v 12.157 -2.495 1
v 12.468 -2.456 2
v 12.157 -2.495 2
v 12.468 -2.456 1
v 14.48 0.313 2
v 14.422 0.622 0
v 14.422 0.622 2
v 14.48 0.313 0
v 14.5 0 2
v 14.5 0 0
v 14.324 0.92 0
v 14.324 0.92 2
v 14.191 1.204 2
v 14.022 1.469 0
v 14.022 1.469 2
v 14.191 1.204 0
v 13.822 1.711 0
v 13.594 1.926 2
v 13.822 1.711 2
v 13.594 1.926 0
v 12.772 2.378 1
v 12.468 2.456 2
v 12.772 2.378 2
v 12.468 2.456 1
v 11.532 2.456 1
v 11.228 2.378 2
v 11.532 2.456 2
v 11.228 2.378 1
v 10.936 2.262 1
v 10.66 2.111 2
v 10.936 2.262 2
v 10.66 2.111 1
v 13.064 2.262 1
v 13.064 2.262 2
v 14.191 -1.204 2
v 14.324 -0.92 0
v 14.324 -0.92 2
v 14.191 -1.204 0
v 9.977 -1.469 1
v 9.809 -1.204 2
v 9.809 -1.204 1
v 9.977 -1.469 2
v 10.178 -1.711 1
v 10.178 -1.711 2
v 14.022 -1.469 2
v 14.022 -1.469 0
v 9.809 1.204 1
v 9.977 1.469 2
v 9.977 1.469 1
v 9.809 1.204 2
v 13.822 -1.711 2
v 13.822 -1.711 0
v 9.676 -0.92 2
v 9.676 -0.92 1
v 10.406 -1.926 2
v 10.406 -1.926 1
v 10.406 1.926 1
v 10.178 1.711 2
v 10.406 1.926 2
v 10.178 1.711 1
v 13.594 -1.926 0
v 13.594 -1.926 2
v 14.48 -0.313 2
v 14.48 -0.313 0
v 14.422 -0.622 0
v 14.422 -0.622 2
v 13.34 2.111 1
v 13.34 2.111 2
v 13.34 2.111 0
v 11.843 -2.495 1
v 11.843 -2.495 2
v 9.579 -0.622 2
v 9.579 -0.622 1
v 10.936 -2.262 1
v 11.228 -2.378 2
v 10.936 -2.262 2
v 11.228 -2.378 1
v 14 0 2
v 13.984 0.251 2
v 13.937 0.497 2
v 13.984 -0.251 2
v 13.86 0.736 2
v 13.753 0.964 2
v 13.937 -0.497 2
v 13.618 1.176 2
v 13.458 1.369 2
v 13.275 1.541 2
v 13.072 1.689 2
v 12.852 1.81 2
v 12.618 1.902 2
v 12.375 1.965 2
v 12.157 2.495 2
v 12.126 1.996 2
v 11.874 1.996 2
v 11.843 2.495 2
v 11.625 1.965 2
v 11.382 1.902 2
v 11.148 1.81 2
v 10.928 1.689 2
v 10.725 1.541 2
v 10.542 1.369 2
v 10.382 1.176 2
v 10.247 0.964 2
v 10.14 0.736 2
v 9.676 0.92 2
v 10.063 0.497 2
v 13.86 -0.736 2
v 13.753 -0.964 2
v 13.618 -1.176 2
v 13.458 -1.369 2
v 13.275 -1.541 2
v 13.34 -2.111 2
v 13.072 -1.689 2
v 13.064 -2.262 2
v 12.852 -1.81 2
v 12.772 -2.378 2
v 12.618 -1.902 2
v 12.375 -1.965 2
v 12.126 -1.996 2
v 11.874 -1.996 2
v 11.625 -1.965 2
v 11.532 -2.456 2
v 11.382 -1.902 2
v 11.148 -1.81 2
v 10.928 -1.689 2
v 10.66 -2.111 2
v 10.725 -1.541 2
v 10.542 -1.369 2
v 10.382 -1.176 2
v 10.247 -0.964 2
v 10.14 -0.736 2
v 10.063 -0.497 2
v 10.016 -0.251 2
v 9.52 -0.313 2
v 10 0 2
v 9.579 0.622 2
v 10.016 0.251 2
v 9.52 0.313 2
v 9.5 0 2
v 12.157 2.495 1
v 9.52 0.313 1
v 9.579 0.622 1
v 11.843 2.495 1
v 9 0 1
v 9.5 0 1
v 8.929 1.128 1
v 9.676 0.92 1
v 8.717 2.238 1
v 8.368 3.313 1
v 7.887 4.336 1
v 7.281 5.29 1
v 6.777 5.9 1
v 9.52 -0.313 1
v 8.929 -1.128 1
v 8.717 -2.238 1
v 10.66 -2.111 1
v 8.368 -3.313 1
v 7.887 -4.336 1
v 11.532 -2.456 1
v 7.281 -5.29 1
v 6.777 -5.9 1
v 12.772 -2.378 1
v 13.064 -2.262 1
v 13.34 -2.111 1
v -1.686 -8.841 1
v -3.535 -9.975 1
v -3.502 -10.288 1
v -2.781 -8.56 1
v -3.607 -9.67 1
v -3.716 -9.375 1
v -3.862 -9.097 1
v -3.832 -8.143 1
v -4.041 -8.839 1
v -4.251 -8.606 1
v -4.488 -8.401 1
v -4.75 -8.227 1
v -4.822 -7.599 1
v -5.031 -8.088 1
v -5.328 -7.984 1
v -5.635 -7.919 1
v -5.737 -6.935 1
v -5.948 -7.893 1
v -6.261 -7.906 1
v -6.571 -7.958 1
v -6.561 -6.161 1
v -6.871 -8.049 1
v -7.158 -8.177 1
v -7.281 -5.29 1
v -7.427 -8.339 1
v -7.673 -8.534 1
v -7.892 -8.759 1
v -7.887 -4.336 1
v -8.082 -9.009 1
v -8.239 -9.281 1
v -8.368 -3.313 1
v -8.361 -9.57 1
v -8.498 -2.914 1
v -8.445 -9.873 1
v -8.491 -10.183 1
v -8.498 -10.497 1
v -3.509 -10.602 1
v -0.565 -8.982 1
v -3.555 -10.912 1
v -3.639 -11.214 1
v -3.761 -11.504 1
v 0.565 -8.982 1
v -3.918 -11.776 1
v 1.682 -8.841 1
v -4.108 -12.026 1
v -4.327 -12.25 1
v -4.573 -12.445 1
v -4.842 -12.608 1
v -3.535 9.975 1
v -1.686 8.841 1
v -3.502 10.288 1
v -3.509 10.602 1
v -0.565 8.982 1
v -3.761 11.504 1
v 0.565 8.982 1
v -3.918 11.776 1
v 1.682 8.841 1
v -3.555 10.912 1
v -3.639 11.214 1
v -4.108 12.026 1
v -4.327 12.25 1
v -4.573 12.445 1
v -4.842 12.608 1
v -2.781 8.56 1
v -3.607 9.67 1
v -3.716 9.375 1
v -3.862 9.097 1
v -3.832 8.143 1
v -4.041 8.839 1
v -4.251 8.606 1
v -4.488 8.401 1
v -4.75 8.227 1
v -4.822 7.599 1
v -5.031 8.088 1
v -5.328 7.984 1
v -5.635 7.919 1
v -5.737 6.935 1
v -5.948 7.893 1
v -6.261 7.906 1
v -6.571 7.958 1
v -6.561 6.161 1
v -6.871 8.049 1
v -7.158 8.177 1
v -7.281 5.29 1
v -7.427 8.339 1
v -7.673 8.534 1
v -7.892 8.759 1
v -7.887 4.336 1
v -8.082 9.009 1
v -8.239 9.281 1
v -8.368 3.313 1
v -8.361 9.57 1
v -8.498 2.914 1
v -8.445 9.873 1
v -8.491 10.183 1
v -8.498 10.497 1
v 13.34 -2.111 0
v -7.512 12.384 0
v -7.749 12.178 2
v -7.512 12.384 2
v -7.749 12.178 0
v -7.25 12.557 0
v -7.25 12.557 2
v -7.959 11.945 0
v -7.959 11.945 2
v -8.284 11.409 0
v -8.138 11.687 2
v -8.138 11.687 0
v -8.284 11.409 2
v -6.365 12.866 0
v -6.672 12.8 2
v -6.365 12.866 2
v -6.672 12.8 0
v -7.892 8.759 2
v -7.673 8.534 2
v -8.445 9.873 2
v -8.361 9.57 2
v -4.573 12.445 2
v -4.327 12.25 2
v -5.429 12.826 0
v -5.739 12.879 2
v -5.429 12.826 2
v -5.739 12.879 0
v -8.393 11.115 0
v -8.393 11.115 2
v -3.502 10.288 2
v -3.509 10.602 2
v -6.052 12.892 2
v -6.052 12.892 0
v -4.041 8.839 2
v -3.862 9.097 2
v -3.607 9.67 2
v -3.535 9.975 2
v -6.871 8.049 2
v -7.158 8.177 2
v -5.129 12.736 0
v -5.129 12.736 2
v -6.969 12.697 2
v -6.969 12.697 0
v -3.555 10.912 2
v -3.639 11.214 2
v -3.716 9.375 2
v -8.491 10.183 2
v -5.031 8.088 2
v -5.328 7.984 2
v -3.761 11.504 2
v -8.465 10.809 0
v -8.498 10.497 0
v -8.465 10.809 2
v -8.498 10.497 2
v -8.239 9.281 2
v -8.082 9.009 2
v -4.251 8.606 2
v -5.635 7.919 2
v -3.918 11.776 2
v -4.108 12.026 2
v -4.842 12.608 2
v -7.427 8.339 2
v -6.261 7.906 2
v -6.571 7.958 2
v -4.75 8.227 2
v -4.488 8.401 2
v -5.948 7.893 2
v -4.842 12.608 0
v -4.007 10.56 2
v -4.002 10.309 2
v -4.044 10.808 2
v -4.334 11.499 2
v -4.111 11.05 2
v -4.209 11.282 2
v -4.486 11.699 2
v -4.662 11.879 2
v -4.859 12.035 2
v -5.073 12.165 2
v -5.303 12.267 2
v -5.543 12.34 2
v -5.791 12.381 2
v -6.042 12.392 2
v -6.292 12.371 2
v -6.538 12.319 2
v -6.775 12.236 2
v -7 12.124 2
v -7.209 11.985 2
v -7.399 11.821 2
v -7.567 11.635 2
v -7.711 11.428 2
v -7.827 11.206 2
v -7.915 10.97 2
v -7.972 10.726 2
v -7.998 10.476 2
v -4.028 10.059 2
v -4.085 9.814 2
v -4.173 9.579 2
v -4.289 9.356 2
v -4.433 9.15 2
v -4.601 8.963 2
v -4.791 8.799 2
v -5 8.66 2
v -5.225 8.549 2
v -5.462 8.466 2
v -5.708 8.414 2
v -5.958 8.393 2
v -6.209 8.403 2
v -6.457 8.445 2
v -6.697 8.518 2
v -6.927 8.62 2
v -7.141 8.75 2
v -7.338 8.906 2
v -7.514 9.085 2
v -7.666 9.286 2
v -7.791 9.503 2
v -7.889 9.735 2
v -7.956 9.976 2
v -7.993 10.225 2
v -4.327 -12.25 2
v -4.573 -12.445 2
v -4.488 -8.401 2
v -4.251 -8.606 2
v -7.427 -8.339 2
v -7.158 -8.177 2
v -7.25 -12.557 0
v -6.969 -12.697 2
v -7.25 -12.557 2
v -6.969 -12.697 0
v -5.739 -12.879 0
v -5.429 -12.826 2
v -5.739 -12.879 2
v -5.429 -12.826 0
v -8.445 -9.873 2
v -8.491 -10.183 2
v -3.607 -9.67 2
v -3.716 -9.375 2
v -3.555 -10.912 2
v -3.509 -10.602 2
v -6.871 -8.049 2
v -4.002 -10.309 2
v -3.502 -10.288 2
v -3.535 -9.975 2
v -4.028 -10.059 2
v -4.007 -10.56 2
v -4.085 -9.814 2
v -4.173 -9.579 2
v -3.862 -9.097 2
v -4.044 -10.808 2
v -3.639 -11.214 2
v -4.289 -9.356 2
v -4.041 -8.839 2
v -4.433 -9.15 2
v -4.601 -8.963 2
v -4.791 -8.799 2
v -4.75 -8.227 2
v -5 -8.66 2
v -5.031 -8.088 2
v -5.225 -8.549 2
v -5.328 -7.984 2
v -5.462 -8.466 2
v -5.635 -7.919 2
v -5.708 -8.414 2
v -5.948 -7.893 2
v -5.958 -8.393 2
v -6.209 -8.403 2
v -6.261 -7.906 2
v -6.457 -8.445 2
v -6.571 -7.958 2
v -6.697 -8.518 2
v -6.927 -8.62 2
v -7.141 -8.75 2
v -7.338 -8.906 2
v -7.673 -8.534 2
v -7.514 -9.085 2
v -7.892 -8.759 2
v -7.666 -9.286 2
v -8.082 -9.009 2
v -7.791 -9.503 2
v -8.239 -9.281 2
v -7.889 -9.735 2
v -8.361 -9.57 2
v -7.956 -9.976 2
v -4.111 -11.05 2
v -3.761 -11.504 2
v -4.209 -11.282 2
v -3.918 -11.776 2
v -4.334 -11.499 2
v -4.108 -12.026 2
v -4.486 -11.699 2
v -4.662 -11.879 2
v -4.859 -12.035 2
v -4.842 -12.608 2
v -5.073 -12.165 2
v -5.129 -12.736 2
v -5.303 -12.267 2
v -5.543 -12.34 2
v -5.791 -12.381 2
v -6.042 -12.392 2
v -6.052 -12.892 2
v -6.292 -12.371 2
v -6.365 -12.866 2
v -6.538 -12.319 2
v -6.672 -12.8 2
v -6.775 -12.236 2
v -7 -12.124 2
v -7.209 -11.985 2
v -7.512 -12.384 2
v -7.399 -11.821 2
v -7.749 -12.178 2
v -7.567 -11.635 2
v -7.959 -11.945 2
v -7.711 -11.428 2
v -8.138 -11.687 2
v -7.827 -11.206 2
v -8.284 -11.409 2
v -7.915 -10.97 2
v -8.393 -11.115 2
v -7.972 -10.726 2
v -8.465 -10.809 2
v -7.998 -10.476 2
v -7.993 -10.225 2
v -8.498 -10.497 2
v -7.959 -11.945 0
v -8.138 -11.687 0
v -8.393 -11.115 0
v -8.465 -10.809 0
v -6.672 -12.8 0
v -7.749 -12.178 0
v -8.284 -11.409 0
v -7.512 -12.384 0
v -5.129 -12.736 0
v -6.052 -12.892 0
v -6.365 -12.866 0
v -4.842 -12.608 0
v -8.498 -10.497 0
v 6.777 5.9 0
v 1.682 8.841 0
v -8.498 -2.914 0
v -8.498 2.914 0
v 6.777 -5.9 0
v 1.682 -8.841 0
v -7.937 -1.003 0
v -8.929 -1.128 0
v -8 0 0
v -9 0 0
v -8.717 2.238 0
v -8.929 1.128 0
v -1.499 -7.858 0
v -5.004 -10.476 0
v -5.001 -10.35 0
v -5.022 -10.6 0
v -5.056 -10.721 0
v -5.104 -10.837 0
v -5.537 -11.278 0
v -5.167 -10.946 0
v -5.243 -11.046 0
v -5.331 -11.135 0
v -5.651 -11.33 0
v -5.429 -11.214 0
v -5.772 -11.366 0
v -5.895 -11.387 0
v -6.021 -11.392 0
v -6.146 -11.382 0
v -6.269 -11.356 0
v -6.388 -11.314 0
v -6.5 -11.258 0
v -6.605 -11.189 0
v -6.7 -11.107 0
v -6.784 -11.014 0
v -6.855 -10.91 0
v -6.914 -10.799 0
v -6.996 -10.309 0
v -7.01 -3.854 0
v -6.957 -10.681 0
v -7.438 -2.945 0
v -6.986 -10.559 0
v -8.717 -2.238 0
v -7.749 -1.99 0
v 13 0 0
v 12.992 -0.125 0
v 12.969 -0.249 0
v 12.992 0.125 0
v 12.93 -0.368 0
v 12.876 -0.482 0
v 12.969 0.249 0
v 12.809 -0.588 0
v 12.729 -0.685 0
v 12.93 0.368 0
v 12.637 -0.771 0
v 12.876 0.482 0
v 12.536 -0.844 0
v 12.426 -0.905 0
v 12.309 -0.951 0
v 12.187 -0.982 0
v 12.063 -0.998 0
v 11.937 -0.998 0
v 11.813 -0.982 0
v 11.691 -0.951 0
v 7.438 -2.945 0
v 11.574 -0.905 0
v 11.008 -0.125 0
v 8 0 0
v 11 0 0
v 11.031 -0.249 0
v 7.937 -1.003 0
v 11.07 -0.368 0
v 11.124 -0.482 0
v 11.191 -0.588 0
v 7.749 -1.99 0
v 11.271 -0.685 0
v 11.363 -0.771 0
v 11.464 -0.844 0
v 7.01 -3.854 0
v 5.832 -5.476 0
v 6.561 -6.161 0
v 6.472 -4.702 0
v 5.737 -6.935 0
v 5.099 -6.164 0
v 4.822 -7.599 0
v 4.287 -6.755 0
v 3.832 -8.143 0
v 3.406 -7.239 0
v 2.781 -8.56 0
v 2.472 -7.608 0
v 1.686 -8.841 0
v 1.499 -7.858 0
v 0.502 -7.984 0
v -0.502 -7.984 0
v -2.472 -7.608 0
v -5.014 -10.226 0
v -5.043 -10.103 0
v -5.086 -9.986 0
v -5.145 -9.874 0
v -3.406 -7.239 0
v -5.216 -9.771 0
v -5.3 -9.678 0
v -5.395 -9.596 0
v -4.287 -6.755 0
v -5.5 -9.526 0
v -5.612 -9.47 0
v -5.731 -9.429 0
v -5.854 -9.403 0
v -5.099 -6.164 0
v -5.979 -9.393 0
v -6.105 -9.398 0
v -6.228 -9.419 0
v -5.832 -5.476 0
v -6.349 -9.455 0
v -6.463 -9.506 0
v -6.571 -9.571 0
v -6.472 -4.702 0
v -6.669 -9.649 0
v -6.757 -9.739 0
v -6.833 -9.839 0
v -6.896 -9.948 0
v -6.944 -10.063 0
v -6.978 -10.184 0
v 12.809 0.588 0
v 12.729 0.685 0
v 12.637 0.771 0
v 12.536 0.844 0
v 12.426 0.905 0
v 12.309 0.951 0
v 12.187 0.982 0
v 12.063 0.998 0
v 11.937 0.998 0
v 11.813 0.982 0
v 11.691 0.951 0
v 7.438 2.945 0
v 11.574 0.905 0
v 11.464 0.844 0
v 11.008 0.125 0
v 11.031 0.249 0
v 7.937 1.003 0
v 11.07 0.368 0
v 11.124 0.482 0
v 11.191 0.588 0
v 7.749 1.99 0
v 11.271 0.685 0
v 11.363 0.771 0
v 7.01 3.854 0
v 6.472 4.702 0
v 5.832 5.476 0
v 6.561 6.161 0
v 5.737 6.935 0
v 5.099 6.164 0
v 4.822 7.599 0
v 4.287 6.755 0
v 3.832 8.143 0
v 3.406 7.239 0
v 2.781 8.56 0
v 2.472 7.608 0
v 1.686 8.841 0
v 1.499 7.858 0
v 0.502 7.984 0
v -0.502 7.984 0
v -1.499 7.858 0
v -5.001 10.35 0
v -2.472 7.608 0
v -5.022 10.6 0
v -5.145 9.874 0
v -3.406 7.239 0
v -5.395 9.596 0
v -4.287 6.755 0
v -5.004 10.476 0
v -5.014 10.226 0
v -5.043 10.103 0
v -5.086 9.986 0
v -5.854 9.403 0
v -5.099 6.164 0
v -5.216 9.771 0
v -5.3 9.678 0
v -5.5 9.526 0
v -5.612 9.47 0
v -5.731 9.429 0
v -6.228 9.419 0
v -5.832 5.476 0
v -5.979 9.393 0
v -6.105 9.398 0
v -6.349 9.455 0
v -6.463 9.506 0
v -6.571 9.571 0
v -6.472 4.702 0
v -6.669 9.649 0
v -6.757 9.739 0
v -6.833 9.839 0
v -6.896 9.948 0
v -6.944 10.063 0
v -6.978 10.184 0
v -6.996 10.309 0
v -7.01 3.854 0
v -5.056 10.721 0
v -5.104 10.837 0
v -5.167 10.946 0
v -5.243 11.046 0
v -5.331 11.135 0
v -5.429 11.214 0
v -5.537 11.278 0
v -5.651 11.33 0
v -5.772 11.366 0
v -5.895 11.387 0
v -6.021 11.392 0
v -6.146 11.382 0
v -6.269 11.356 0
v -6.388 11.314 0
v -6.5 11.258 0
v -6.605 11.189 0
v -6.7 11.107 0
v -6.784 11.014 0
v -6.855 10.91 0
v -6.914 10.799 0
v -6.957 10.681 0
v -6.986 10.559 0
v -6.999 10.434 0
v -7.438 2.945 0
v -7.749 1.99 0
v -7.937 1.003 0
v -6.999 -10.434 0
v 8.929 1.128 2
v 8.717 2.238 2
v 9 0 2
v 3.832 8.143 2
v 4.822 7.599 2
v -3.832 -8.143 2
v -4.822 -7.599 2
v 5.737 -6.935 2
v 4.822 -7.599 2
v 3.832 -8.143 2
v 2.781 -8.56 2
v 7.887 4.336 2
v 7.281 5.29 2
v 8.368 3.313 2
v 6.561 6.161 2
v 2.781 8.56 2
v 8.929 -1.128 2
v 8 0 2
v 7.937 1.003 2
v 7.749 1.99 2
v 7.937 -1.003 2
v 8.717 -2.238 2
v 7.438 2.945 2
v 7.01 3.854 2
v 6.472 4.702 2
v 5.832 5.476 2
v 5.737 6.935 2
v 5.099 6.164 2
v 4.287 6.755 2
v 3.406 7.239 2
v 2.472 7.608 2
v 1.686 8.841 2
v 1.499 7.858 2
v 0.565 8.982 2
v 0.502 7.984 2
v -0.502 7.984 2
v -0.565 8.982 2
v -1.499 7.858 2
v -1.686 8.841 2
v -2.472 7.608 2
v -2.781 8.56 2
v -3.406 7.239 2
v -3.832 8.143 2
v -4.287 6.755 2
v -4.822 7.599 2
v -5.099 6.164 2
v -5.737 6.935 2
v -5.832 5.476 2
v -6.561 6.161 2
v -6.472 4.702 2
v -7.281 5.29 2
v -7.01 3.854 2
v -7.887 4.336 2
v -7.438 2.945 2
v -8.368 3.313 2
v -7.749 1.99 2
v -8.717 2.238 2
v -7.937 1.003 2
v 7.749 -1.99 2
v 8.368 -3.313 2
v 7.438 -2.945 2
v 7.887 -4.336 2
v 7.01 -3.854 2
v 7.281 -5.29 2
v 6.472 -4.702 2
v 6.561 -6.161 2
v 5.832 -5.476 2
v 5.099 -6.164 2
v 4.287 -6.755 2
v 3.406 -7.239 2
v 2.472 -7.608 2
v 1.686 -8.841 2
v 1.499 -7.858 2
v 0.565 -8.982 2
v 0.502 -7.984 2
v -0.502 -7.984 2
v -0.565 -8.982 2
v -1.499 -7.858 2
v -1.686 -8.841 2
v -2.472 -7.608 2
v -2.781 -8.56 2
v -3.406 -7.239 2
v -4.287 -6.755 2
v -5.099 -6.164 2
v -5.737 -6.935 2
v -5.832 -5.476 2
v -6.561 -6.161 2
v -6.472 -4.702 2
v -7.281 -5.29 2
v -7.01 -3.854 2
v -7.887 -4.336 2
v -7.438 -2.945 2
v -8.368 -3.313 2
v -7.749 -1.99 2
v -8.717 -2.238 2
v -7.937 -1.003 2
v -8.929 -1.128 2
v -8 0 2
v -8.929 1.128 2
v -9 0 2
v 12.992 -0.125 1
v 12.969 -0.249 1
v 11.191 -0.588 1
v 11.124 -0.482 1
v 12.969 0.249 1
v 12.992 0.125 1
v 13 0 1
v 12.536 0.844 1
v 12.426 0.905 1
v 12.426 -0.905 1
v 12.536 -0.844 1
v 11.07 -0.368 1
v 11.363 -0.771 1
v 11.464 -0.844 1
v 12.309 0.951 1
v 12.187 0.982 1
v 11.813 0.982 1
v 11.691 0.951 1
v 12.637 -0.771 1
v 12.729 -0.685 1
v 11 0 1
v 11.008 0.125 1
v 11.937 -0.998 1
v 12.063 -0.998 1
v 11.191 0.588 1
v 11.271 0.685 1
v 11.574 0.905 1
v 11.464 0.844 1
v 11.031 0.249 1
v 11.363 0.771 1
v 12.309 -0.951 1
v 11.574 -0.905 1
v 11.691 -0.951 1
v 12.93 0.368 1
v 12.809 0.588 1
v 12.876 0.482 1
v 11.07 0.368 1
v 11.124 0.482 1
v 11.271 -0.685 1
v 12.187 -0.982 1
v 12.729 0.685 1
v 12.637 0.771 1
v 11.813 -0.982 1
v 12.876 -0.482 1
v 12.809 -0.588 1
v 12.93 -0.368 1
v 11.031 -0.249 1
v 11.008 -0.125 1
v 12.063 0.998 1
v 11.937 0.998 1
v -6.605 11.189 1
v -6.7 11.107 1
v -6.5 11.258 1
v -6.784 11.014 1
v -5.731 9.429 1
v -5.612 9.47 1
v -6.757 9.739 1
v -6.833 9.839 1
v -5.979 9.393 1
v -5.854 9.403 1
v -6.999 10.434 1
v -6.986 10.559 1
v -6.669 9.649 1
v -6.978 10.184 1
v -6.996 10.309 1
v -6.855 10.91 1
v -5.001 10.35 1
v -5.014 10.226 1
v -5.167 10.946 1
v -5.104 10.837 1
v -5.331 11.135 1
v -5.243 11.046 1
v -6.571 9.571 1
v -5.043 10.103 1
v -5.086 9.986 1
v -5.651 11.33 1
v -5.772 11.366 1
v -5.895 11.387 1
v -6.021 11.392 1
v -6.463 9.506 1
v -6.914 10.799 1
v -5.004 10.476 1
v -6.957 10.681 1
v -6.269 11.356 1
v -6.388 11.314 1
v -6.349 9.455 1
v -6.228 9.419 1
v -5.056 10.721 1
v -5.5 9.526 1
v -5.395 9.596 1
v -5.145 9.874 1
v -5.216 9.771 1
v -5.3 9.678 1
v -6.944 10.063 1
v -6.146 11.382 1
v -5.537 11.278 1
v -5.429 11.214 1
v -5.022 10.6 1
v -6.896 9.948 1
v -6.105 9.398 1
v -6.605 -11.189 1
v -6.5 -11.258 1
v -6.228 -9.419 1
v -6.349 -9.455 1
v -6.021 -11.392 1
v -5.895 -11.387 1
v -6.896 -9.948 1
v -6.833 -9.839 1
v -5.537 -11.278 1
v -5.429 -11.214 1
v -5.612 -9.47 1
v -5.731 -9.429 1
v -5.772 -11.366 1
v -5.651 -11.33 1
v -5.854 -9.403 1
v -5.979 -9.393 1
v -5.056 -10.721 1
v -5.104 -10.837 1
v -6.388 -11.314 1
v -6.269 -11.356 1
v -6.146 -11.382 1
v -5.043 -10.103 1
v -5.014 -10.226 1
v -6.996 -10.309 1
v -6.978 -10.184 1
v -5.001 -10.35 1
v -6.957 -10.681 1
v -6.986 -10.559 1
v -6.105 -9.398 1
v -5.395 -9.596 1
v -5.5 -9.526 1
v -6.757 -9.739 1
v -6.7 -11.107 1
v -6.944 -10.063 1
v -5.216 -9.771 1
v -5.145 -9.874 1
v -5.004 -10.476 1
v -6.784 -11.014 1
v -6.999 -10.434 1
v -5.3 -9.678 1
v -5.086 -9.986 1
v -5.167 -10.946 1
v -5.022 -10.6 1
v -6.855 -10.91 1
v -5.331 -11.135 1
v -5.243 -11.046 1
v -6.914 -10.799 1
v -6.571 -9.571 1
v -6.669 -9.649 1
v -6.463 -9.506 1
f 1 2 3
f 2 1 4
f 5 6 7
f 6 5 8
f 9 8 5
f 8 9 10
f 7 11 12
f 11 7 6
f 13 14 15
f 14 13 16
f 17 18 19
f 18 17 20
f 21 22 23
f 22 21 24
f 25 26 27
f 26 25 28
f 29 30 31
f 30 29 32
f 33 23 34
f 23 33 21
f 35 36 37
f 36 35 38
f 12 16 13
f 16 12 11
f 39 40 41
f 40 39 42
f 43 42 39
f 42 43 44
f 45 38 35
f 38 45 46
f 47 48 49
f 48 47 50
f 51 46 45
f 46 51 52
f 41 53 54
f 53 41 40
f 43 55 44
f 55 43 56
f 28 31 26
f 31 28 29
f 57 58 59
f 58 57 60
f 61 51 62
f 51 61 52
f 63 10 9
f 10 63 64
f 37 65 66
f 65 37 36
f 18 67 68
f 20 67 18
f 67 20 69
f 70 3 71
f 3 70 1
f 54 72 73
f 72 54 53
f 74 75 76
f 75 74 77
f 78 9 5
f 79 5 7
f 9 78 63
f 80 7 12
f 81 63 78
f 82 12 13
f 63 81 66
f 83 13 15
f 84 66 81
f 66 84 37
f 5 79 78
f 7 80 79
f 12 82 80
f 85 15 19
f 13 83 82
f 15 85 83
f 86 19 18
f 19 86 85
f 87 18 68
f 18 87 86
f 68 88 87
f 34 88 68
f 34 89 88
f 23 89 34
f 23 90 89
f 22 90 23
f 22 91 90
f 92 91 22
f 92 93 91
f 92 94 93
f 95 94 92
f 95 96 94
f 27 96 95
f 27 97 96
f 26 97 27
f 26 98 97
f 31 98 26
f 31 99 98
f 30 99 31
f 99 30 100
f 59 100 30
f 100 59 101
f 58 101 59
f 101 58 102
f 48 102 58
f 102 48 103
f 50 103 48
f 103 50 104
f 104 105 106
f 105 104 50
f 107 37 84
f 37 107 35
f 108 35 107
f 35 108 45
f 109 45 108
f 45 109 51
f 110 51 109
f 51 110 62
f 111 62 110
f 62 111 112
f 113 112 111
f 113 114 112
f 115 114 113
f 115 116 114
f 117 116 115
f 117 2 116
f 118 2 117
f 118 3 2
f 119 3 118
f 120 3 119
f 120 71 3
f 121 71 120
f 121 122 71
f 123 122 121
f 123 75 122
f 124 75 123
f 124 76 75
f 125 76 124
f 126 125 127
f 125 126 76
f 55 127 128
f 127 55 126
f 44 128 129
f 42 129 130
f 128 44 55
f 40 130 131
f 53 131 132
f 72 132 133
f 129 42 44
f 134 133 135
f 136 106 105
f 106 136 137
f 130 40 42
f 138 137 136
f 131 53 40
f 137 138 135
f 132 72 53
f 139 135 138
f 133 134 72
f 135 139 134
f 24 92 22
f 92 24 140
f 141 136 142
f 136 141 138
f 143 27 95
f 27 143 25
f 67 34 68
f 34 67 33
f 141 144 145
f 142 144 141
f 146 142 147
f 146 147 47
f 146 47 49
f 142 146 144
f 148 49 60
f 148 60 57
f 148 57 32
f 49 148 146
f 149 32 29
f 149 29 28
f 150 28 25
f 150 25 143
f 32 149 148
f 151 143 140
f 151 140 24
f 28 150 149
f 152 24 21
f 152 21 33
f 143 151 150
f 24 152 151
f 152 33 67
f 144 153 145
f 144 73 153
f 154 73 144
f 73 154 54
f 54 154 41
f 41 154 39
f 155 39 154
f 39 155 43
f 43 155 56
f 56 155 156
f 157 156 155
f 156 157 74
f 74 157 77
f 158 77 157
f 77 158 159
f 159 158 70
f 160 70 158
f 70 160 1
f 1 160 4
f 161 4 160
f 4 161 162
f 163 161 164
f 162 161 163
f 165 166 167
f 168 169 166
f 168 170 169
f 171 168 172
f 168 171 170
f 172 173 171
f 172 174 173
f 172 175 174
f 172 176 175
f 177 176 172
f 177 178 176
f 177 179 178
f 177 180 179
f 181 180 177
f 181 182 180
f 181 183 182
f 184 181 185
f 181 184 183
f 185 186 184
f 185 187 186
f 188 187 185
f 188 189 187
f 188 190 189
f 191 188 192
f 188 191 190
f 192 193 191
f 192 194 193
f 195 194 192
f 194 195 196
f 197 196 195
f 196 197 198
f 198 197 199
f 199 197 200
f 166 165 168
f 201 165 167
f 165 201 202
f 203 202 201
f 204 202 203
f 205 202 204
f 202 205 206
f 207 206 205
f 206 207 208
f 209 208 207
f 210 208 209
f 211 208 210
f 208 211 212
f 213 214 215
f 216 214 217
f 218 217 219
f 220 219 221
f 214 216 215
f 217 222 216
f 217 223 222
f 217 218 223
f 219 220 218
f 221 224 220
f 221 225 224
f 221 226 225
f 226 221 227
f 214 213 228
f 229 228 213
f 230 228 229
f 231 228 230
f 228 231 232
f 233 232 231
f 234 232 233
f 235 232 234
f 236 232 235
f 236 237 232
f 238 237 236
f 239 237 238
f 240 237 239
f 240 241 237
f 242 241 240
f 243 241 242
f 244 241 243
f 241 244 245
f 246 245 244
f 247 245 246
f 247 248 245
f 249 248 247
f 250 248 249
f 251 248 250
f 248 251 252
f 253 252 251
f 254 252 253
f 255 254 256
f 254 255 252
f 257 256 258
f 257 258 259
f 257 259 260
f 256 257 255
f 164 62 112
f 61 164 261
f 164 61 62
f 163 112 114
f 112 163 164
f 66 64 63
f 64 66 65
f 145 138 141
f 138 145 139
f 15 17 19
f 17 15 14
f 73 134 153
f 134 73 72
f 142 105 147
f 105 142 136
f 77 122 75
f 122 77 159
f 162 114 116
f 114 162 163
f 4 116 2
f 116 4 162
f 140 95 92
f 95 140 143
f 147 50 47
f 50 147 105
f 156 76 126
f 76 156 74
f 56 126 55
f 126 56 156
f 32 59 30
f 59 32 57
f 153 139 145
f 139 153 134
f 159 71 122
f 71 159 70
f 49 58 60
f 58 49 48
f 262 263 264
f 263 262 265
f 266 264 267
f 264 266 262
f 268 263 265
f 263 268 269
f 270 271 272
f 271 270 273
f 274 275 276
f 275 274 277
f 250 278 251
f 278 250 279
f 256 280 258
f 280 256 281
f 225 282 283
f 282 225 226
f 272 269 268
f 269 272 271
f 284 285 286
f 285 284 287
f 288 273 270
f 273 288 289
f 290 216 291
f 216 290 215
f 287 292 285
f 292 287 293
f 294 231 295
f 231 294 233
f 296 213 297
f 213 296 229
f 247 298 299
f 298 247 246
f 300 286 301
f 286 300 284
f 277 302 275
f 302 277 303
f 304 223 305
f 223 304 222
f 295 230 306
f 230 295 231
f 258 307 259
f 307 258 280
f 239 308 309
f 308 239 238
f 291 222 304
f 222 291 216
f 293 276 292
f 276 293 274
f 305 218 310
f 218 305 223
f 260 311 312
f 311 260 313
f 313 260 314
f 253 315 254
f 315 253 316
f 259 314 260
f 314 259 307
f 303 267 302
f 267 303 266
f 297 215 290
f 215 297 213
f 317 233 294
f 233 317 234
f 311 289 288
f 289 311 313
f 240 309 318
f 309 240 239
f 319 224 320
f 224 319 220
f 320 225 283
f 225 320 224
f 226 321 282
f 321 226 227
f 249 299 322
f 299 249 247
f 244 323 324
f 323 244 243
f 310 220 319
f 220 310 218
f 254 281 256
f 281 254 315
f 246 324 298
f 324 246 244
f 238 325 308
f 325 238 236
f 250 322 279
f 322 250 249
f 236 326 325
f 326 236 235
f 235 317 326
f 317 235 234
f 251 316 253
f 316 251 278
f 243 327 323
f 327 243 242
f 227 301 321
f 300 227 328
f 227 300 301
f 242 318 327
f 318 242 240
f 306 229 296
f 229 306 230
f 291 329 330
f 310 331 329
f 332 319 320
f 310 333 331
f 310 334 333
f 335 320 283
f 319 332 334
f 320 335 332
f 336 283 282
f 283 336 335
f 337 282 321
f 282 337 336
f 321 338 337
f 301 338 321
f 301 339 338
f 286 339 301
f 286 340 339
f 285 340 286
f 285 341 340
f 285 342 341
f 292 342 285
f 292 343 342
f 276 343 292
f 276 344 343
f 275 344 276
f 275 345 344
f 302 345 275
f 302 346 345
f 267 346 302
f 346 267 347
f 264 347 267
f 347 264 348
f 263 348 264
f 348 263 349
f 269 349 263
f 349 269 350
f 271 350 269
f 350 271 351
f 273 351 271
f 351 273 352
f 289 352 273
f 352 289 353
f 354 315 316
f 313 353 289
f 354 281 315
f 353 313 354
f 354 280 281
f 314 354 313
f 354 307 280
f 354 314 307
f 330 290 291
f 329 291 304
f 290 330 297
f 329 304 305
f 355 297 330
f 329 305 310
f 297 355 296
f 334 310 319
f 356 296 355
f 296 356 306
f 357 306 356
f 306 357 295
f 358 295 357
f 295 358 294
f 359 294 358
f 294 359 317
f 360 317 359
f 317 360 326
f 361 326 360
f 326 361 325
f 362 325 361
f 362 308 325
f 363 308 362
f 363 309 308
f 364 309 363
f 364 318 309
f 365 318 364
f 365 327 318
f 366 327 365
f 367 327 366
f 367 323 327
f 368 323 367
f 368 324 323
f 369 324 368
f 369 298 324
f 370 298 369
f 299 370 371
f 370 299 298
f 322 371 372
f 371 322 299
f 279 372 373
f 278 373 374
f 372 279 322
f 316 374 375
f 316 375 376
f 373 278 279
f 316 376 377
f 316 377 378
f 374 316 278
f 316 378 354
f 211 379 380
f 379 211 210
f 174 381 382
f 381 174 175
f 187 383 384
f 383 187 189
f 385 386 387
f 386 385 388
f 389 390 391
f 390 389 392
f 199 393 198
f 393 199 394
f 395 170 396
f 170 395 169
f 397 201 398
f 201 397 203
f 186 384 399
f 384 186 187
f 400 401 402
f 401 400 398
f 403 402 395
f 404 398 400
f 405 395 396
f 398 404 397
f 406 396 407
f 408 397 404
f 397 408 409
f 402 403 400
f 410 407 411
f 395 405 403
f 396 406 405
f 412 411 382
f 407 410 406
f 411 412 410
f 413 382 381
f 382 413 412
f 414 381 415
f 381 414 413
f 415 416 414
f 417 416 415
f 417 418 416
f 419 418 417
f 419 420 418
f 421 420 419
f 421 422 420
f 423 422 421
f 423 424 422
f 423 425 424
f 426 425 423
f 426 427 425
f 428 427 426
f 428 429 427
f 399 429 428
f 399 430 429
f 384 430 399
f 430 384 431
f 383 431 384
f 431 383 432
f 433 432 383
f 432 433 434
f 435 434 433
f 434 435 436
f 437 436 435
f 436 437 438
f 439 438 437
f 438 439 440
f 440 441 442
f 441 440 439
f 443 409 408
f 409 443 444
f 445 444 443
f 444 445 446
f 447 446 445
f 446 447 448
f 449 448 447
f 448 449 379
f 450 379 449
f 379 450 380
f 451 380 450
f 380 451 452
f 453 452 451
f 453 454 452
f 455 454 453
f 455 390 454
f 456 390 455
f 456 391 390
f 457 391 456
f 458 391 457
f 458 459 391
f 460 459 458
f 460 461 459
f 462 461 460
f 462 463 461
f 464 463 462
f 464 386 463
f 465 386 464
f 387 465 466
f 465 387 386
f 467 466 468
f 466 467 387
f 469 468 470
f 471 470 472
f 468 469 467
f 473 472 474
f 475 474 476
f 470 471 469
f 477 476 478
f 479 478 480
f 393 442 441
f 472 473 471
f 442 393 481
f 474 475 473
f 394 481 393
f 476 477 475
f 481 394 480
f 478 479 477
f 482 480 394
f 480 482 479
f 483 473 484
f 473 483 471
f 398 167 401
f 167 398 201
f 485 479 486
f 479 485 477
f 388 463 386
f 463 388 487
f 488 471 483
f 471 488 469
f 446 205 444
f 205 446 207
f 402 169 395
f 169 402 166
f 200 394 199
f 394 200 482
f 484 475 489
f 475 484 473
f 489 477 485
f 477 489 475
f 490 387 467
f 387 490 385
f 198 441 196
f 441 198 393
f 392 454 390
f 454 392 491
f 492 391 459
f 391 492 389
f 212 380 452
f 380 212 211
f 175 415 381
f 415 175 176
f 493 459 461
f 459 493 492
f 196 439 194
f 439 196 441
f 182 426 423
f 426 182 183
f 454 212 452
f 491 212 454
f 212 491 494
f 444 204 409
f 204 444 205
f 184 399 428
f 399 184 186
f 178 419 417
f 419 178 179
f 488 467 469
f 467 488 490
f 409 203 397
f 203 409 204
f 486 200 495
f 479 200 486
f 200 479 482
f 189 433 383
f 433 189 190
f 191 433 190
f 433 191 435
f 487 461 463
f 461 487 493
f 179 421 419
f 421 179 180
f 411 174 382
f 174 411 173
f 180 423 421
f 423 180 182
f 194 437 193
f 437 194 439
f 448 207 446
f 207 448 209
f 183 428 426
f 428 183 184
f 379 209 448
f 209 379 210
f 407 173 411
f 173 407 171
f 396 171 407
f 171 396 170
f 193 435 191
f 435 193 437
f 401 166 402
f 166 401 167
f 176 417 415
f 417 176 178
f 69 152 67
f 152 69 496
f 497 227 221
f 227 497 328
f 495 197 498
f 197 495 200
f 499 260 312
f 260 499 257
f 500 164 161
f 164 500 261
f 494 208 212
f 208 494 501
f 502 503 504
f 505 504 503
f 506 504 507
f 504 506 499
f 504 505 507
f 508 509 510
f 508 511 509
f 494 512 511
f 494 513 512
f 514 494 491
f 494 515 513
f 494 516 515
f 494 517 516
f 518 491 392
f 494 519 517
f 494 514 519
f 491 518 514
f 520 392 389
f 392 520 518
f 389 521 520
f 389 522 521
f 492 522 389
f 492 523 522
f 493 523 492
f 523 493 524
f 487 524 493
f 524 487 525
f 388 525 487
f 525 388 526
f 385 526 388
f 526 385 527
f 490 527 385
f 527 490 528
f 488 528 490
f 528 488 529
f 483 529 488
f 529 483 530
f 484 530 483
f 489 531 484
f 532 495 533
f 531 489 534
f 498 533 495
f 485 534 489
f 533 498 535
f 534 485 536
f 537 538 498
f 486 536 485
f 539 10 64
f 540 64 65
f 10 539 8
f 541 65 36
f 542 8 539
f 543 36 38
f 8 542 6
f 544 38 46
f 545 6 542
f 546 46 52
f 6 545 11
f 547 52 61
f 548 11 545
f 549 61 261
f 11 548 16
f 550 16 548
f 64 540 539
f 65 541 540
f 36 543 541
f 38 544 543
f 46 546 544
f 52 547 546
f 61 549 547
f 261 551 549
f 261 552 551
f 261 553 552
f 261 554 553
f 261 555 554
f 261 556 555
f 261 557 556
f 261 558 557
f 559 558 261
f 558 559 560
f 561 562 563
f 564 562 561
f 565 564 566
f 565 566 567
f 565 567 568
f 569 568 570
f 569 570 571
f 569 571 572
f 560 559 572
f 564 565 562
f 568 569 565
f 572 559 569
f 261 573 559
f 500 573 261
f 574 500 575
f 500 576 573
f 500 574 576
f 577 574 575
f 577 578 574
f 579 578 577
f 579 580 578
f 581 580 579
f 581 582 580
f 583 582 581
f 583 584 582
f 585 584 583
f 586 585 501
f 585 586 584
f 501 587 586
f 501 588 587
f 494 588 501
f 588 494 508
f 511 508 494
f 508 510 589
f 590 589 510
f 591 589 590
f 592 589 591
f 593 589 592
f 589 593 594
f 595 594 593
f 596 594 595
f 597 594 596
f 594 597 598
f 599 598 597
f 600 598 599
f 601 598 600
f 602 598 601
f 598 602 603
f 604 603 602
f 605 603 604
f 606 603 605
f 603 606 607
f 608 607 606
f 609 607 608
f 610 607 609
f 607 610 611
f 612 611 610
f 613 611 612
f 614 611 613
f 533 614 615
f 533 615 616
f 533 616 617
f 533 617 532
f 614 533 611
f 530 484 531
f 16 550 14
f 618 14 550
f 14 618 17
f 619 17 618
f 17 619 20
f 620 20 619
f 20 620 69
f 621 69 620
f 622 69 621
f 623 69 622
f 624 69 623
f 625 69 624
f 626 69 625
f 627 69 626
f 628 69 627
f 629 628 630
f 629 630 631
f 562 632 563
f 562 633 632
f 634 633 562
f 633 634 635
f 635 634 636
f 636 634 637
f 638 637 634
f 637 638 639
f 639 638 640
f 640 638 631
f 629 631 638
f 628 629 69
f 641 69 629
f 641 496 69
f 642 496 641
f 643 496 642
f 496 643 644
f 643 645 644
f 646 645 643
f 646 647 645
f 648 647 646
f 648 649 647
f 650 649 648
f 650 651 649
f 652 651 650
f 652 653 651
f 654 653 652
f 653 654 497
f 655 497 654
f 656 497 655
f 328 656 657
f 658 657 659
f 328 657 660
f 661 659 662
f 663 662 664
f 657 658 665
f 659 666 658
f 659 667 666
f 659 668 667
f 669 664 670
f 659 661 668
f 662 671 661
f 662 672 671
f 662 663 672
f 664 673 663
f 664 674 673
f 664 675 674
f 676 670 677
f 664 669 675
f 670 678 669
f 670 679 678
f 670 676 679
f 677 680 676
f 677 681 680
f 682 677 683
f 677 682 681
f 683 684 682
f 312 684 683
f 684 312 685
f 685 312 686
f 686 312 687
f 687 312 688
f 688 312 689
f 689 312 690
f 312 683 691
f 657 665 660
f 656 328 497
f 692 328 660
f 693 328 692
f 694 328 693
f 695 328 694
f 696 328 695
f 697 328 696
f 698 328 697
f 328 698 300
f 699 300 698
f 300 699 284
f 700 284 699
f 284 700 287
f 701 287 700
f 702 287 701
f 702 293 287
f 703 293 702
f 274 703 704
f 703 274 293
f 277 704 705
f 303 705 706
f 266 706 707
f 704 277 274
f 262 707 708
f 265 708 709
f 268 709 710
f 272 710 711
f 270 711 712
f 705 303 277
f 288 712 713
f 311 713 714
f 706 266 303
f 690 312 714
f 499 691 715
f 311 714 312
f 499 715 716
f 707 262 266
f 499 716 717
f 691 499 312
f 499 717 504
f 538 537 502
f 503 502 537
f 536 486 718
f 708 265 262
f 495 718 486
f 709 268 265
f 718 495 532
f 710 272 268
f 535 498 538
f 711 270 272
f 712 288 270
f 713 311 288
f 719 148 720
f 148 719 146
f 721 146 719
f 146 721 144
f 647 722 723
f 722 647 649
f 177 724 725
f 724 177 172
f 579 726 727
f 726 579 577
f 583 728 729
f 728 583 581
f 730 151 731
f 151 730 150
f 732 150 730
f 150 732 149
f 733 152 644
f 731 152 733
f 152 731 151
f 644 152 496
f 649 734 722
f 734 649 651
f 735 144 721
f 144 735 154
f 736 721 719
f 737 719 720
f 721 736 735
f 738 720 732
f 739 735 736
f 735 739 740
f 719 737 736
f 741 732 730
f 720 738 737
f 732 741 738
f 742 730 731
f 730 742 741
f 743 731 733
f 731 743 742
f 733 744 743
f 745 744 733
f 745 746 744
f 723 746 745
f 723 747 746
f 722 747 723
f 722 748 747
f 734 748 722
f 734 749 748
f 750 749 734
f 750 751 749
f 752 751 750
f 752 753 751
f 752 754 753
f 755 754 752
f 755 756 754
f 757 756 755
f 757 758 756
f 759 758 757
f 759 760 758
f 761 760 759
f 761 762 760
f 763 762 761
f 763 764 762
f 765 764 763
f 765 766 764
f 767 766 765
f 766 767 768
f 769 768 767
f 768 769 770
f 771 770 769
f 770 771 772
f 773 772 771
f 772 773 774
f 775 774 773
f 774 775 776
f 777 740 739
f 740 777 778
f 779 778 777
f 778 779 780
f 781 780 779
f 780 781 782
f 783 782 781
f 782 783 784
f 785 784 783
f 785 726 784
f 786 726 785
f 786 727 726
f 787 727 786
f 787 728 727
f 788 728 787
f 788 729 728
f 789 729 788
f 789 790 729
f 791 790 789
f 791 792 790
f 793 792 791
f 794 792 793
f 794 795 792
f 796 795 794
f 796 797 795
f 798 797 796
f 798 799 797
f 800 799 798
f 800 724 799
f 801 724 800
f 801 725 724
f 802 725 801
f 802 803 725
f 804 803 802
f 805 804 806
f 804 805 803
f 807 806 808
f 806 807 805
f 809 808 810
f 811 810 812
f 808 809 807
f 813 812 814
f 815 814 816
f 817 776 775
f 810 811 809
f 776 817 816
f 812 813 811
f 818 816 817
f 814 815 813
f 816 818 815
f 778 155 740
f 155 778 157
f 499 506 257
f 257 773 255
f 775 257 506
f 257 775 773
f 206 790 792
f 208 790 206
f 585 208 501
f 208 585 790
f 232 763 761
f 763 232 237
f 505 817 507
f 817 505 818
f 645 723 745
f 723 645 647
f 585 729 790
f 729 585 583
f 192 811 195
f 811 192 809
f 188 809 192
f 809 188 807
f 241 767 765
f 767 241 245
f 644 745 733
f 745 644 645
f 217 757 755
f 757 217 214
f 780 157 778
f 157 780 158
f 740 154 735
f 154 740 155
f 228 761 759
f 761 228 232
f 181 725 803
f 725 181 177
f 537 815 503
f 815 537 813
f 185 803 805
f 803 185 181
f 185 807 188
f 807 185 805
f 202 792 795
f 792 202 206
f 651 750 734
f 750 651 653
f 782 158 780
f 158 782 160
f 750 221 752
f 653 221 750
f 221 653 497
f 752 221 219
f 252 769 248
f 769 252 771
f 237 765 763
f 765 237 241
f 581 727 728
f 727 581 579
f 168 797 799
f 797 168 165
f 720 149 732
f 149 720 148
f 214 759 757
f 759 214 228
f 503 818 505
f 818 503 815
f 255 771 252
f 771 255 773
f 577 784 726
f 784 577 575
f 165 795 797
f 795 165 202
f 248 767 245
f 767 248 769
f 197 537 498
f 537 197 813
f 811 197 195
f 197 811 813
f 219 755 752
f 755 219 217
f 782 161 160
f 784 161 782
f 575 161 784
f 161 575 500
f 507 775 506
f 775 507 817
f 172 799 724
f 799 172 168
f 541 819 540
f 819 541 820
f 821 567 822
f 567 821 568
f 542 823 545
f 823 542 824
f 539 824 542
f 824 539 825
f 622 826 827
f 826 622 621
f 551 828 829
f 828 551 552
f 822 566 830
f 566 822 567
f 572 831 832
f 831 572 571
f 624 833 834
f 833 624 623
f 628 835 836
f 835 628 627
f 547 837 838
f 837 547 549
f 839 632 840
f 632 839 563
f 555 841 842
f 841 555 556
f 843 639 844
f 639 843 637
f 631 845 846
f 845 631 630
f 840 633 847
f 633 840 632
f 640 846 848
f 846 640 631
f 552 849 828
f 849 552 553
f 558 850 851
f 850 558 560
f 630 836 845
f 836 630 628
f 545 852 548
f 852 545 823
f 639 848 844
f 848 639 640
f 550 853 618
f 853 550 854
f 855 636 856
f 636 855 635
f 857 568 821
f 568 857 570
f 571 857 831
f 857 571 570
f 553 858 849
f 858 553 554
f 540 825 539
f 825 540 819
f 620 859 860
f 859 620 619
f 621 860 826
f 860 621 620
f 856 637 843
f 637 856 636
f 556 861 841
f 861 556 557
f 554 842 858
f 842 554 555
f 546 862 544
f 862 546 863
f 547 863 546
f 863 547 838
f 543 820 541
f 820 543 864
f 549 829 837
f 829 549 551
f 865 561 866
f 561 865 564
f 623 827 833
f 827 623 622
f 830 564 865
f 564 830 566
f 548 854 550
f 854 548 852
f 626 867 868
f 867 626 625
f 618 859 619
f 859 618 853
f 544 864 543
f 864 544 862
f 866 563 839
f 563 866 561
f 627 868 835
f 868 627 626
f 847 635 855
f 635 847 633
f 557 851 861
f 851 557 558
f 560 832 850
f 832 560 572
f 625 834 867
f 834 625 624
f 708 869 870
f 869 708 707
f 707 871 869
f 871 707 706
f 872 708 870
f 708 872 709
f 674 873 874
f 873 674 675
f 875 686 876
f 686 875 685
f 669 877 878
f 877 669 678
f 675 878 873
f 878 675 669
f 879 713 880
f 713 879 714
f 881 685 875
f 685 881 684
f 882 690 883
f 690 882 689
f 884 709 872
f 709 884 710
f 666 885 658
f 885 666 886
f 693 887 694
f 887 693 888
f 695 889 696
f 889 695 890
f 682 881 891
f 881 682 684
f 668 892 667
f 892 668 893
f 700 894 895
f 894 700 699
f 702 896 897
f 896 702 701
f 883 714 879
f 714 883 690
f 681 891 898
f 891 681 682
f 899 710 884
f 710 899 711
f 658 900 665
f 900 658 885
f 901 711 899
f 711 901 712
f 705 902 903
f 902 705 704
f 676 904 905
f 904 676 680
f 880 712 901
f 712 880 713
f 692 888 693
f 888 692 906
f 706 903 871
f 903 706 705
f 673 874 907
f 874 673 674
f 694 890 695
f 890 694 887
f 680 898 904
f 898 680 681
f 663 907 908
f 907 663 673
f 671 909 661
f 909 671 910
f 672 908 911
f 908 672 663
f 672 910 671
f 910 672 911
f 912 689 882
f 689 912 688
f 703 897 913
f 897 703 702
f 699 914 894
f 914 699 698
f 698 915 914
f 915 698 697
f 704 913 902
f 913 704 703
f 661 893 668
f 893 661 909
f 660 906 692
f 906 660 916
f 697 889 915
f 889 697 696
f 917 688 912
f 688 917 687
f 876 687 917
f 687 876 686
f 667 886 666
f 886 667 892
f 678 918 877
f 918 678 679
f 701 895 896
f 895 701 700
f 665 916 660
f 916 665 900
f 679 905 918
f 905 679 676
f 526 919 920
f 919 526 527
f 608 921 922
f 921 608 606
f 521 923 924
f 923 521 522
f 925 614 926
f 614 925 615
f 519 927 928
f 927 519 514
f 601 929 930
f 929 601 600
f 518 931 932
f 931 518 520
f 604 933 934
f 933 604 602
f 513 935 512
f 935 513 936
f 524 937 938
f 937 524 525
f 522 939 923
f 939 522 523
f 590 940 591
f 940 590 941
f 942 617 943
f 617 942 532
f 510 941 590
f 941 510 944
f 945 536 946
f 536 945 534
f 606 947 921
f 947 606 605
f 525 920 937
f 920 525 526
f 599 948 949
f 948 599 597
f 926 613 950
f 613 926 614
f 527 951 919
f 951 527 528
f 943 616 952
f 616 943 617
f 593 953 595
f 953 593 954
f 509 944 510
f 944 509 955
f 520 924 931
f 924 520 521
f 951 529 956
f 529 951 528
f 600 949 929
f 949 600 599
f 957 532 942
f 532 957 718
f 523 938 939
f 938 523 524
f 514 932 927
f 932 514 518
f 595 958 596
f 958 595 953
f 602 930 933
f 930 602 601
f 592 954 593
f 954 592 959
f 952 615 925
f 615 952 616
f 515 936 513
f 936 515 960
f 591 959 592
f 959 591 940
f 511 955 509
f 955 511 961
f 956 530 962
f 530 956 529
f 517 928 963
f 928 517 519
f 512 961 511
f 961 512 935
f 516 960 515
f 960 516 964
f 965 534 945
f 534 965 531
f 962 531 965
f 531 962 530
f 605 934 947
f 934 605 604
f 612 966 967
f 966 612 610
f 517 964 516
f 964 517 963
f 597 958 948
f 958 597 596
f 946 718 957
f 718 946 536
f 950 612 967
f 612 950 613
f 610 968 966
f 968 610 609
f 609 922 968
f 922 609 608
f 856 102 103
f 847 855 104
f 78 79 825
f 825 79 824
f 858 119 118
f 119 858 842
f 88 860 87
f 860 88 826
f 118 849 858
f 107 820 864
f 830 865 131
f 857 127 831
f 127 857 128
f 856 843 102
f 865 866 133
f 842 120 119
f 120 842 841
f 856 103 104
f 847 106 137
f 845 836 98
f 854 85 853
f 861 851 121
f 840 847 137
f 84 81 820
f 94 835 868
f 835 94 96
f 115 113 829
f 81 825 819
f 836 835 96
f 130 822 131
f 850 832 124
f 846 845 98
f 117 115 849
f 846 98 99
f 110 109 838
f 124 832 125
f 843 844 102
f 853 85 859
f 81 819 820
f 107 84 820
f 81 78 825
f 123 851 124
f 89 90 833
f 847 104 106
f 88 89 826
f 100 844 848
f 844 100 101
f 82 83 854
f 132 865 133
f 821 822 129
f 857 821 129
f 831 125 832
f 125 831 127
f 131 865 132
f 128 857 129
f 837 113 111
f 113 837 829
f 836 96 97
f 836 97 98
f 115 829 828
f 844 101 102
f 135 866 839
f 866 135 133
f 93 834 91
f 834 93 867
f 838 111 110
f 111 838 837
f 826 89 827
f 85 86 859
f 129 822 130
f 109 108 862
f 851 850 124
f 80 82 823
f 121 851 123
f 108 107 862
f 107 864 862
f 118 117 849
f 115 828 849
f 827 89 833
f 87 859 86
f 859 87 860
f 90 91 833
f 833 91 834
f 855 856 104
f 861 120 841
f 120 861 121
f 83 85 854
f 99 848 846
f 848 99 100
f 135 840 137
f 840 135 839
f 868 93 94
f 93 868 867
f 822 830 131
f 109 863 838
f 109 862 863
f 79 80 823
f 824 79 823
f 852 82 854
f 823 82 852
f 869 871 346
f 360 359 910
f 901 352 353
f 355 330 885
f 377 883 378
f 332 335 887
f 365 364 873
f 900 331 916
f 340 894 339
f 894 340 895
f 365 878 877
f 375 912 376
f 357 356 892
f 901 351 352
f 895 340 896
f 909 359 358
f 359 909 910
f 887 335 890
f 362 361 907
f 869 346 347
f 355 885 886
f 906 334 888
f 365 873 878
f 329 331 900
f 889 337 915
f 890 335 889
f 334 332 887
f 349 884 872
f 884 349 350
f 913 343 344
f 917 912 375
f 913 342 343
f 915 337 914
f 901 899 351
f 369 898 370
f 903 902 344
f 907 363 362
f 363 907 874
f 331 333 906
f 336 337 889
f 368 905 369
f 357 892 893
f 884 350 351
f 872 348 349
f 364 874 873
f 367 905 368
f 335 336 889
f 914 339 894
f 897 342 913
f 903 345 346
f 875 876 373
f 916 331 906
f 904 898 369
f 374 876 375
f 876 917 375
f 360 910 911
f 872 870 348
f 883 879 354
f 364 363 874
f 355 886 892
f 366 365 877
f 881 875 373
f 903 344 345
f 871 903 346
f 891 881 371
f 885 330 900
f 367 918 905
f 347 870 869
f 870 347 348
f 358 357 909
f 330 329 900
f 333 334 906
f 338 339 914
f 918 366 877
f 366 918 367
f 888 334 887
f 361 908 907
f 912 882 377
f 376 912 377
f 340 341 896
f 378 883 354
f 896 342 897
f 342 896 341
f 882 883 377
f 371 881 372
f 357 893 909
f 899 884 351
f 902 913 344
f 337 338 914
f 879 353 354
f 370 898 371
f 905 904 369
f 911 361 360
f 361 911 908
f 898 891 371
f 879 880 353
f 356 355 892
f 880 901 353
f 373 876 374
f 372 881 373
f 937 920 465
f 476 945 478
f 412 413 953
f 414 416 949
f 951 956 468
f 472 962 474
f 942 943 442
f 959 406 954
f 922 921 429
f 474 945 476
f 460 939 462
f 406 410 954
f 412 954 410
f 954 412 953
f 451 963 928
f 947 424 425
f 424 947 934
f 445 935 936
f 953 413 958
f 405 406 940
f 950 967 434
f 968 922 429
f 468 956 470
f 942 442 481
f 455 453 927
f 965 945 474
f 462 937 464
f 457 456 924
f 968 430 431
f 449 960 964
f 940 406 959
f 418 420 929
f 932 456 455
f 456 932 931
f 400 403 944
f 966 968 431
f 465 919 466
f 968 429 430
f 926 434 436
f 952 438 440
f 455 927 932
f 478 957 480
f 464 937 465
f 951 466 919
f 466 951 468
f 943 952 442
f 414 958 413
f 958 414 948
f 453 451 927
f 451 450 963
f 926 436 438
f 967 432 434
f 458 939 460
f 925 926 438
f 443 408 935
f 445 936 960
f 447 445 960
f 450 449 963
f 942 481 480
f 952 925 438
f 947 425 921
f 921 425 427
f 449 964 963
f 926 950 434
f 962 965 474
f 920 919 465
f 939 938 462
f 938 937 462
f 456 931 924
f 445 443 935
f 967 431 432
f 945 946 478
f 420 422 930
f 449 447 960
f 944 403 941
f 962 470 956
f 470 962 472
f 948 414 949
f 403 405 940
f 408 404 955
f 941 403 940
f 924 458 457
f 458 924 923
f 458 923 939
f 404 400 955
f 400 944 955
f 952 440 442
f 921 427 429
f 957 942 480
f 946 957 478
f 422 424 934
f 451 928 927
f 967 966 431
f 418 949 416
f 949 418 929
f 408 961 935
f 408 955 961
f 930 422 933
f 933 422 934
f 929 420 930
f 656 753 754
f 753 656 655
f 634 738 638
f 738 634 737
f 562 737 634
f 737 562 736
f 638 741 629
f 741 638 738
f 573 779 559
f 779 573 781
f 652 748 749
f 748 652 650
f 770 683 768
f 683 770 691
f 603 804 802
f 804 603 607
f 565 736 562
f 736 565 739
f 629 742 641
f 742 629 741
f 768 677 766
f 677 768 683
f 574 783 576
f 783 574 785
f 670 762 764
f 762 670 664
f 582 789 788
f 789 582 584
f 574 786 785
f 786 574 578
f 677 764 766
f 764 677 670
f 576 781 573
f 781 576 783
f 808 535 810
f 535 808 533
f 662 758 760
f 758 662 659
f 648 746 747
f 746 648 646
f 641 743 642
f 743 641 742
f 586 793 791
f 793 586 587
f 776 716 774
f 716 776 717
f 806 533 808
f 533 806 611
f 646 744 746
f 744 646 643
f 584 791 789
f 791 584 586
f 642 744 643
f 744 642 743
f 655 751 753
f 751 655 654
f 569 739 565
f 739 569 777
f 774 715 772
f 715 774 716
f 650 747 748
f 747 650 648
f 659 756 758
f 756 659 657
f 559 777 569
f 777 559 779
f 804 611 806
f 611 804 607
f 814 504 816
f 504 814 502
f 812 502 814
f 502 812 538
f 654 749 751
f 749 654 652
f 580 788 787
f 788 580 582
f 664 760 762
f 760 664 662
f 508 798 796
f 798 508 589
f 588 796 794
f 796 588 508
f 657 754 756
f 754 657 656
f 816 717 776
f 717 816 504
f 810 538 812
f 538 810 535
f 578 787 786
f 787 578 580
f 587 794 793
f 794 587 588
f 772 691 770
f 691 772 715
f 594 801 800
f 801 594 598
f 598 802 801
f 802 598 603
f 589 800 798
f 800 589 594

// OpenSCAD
$fn=50;

module three(a=12, d=5, h=1) {
  for (i=[0:120:360]) {
    rotate(i)translate([a,0,0])cylinder(d=d,h=h);
  }
}

module four(a=12, d1=2, d2=4, h=1) {
  for (i=[0:120:360]) {
    rotate(i)translate([a,0,0])cylinder(r1=d1/2,r2=d2/2,h=h);
  }
}

module spodek() {
  hull()three();
  translate([0,0,1])three();
  cylinder(d=18,h=2);
}

difference(){
    spodek();
    union(){
      cylinder(d=16,h=2);
      three(d=2,h=5);
      translate([0,0,1])four();
    }
}
